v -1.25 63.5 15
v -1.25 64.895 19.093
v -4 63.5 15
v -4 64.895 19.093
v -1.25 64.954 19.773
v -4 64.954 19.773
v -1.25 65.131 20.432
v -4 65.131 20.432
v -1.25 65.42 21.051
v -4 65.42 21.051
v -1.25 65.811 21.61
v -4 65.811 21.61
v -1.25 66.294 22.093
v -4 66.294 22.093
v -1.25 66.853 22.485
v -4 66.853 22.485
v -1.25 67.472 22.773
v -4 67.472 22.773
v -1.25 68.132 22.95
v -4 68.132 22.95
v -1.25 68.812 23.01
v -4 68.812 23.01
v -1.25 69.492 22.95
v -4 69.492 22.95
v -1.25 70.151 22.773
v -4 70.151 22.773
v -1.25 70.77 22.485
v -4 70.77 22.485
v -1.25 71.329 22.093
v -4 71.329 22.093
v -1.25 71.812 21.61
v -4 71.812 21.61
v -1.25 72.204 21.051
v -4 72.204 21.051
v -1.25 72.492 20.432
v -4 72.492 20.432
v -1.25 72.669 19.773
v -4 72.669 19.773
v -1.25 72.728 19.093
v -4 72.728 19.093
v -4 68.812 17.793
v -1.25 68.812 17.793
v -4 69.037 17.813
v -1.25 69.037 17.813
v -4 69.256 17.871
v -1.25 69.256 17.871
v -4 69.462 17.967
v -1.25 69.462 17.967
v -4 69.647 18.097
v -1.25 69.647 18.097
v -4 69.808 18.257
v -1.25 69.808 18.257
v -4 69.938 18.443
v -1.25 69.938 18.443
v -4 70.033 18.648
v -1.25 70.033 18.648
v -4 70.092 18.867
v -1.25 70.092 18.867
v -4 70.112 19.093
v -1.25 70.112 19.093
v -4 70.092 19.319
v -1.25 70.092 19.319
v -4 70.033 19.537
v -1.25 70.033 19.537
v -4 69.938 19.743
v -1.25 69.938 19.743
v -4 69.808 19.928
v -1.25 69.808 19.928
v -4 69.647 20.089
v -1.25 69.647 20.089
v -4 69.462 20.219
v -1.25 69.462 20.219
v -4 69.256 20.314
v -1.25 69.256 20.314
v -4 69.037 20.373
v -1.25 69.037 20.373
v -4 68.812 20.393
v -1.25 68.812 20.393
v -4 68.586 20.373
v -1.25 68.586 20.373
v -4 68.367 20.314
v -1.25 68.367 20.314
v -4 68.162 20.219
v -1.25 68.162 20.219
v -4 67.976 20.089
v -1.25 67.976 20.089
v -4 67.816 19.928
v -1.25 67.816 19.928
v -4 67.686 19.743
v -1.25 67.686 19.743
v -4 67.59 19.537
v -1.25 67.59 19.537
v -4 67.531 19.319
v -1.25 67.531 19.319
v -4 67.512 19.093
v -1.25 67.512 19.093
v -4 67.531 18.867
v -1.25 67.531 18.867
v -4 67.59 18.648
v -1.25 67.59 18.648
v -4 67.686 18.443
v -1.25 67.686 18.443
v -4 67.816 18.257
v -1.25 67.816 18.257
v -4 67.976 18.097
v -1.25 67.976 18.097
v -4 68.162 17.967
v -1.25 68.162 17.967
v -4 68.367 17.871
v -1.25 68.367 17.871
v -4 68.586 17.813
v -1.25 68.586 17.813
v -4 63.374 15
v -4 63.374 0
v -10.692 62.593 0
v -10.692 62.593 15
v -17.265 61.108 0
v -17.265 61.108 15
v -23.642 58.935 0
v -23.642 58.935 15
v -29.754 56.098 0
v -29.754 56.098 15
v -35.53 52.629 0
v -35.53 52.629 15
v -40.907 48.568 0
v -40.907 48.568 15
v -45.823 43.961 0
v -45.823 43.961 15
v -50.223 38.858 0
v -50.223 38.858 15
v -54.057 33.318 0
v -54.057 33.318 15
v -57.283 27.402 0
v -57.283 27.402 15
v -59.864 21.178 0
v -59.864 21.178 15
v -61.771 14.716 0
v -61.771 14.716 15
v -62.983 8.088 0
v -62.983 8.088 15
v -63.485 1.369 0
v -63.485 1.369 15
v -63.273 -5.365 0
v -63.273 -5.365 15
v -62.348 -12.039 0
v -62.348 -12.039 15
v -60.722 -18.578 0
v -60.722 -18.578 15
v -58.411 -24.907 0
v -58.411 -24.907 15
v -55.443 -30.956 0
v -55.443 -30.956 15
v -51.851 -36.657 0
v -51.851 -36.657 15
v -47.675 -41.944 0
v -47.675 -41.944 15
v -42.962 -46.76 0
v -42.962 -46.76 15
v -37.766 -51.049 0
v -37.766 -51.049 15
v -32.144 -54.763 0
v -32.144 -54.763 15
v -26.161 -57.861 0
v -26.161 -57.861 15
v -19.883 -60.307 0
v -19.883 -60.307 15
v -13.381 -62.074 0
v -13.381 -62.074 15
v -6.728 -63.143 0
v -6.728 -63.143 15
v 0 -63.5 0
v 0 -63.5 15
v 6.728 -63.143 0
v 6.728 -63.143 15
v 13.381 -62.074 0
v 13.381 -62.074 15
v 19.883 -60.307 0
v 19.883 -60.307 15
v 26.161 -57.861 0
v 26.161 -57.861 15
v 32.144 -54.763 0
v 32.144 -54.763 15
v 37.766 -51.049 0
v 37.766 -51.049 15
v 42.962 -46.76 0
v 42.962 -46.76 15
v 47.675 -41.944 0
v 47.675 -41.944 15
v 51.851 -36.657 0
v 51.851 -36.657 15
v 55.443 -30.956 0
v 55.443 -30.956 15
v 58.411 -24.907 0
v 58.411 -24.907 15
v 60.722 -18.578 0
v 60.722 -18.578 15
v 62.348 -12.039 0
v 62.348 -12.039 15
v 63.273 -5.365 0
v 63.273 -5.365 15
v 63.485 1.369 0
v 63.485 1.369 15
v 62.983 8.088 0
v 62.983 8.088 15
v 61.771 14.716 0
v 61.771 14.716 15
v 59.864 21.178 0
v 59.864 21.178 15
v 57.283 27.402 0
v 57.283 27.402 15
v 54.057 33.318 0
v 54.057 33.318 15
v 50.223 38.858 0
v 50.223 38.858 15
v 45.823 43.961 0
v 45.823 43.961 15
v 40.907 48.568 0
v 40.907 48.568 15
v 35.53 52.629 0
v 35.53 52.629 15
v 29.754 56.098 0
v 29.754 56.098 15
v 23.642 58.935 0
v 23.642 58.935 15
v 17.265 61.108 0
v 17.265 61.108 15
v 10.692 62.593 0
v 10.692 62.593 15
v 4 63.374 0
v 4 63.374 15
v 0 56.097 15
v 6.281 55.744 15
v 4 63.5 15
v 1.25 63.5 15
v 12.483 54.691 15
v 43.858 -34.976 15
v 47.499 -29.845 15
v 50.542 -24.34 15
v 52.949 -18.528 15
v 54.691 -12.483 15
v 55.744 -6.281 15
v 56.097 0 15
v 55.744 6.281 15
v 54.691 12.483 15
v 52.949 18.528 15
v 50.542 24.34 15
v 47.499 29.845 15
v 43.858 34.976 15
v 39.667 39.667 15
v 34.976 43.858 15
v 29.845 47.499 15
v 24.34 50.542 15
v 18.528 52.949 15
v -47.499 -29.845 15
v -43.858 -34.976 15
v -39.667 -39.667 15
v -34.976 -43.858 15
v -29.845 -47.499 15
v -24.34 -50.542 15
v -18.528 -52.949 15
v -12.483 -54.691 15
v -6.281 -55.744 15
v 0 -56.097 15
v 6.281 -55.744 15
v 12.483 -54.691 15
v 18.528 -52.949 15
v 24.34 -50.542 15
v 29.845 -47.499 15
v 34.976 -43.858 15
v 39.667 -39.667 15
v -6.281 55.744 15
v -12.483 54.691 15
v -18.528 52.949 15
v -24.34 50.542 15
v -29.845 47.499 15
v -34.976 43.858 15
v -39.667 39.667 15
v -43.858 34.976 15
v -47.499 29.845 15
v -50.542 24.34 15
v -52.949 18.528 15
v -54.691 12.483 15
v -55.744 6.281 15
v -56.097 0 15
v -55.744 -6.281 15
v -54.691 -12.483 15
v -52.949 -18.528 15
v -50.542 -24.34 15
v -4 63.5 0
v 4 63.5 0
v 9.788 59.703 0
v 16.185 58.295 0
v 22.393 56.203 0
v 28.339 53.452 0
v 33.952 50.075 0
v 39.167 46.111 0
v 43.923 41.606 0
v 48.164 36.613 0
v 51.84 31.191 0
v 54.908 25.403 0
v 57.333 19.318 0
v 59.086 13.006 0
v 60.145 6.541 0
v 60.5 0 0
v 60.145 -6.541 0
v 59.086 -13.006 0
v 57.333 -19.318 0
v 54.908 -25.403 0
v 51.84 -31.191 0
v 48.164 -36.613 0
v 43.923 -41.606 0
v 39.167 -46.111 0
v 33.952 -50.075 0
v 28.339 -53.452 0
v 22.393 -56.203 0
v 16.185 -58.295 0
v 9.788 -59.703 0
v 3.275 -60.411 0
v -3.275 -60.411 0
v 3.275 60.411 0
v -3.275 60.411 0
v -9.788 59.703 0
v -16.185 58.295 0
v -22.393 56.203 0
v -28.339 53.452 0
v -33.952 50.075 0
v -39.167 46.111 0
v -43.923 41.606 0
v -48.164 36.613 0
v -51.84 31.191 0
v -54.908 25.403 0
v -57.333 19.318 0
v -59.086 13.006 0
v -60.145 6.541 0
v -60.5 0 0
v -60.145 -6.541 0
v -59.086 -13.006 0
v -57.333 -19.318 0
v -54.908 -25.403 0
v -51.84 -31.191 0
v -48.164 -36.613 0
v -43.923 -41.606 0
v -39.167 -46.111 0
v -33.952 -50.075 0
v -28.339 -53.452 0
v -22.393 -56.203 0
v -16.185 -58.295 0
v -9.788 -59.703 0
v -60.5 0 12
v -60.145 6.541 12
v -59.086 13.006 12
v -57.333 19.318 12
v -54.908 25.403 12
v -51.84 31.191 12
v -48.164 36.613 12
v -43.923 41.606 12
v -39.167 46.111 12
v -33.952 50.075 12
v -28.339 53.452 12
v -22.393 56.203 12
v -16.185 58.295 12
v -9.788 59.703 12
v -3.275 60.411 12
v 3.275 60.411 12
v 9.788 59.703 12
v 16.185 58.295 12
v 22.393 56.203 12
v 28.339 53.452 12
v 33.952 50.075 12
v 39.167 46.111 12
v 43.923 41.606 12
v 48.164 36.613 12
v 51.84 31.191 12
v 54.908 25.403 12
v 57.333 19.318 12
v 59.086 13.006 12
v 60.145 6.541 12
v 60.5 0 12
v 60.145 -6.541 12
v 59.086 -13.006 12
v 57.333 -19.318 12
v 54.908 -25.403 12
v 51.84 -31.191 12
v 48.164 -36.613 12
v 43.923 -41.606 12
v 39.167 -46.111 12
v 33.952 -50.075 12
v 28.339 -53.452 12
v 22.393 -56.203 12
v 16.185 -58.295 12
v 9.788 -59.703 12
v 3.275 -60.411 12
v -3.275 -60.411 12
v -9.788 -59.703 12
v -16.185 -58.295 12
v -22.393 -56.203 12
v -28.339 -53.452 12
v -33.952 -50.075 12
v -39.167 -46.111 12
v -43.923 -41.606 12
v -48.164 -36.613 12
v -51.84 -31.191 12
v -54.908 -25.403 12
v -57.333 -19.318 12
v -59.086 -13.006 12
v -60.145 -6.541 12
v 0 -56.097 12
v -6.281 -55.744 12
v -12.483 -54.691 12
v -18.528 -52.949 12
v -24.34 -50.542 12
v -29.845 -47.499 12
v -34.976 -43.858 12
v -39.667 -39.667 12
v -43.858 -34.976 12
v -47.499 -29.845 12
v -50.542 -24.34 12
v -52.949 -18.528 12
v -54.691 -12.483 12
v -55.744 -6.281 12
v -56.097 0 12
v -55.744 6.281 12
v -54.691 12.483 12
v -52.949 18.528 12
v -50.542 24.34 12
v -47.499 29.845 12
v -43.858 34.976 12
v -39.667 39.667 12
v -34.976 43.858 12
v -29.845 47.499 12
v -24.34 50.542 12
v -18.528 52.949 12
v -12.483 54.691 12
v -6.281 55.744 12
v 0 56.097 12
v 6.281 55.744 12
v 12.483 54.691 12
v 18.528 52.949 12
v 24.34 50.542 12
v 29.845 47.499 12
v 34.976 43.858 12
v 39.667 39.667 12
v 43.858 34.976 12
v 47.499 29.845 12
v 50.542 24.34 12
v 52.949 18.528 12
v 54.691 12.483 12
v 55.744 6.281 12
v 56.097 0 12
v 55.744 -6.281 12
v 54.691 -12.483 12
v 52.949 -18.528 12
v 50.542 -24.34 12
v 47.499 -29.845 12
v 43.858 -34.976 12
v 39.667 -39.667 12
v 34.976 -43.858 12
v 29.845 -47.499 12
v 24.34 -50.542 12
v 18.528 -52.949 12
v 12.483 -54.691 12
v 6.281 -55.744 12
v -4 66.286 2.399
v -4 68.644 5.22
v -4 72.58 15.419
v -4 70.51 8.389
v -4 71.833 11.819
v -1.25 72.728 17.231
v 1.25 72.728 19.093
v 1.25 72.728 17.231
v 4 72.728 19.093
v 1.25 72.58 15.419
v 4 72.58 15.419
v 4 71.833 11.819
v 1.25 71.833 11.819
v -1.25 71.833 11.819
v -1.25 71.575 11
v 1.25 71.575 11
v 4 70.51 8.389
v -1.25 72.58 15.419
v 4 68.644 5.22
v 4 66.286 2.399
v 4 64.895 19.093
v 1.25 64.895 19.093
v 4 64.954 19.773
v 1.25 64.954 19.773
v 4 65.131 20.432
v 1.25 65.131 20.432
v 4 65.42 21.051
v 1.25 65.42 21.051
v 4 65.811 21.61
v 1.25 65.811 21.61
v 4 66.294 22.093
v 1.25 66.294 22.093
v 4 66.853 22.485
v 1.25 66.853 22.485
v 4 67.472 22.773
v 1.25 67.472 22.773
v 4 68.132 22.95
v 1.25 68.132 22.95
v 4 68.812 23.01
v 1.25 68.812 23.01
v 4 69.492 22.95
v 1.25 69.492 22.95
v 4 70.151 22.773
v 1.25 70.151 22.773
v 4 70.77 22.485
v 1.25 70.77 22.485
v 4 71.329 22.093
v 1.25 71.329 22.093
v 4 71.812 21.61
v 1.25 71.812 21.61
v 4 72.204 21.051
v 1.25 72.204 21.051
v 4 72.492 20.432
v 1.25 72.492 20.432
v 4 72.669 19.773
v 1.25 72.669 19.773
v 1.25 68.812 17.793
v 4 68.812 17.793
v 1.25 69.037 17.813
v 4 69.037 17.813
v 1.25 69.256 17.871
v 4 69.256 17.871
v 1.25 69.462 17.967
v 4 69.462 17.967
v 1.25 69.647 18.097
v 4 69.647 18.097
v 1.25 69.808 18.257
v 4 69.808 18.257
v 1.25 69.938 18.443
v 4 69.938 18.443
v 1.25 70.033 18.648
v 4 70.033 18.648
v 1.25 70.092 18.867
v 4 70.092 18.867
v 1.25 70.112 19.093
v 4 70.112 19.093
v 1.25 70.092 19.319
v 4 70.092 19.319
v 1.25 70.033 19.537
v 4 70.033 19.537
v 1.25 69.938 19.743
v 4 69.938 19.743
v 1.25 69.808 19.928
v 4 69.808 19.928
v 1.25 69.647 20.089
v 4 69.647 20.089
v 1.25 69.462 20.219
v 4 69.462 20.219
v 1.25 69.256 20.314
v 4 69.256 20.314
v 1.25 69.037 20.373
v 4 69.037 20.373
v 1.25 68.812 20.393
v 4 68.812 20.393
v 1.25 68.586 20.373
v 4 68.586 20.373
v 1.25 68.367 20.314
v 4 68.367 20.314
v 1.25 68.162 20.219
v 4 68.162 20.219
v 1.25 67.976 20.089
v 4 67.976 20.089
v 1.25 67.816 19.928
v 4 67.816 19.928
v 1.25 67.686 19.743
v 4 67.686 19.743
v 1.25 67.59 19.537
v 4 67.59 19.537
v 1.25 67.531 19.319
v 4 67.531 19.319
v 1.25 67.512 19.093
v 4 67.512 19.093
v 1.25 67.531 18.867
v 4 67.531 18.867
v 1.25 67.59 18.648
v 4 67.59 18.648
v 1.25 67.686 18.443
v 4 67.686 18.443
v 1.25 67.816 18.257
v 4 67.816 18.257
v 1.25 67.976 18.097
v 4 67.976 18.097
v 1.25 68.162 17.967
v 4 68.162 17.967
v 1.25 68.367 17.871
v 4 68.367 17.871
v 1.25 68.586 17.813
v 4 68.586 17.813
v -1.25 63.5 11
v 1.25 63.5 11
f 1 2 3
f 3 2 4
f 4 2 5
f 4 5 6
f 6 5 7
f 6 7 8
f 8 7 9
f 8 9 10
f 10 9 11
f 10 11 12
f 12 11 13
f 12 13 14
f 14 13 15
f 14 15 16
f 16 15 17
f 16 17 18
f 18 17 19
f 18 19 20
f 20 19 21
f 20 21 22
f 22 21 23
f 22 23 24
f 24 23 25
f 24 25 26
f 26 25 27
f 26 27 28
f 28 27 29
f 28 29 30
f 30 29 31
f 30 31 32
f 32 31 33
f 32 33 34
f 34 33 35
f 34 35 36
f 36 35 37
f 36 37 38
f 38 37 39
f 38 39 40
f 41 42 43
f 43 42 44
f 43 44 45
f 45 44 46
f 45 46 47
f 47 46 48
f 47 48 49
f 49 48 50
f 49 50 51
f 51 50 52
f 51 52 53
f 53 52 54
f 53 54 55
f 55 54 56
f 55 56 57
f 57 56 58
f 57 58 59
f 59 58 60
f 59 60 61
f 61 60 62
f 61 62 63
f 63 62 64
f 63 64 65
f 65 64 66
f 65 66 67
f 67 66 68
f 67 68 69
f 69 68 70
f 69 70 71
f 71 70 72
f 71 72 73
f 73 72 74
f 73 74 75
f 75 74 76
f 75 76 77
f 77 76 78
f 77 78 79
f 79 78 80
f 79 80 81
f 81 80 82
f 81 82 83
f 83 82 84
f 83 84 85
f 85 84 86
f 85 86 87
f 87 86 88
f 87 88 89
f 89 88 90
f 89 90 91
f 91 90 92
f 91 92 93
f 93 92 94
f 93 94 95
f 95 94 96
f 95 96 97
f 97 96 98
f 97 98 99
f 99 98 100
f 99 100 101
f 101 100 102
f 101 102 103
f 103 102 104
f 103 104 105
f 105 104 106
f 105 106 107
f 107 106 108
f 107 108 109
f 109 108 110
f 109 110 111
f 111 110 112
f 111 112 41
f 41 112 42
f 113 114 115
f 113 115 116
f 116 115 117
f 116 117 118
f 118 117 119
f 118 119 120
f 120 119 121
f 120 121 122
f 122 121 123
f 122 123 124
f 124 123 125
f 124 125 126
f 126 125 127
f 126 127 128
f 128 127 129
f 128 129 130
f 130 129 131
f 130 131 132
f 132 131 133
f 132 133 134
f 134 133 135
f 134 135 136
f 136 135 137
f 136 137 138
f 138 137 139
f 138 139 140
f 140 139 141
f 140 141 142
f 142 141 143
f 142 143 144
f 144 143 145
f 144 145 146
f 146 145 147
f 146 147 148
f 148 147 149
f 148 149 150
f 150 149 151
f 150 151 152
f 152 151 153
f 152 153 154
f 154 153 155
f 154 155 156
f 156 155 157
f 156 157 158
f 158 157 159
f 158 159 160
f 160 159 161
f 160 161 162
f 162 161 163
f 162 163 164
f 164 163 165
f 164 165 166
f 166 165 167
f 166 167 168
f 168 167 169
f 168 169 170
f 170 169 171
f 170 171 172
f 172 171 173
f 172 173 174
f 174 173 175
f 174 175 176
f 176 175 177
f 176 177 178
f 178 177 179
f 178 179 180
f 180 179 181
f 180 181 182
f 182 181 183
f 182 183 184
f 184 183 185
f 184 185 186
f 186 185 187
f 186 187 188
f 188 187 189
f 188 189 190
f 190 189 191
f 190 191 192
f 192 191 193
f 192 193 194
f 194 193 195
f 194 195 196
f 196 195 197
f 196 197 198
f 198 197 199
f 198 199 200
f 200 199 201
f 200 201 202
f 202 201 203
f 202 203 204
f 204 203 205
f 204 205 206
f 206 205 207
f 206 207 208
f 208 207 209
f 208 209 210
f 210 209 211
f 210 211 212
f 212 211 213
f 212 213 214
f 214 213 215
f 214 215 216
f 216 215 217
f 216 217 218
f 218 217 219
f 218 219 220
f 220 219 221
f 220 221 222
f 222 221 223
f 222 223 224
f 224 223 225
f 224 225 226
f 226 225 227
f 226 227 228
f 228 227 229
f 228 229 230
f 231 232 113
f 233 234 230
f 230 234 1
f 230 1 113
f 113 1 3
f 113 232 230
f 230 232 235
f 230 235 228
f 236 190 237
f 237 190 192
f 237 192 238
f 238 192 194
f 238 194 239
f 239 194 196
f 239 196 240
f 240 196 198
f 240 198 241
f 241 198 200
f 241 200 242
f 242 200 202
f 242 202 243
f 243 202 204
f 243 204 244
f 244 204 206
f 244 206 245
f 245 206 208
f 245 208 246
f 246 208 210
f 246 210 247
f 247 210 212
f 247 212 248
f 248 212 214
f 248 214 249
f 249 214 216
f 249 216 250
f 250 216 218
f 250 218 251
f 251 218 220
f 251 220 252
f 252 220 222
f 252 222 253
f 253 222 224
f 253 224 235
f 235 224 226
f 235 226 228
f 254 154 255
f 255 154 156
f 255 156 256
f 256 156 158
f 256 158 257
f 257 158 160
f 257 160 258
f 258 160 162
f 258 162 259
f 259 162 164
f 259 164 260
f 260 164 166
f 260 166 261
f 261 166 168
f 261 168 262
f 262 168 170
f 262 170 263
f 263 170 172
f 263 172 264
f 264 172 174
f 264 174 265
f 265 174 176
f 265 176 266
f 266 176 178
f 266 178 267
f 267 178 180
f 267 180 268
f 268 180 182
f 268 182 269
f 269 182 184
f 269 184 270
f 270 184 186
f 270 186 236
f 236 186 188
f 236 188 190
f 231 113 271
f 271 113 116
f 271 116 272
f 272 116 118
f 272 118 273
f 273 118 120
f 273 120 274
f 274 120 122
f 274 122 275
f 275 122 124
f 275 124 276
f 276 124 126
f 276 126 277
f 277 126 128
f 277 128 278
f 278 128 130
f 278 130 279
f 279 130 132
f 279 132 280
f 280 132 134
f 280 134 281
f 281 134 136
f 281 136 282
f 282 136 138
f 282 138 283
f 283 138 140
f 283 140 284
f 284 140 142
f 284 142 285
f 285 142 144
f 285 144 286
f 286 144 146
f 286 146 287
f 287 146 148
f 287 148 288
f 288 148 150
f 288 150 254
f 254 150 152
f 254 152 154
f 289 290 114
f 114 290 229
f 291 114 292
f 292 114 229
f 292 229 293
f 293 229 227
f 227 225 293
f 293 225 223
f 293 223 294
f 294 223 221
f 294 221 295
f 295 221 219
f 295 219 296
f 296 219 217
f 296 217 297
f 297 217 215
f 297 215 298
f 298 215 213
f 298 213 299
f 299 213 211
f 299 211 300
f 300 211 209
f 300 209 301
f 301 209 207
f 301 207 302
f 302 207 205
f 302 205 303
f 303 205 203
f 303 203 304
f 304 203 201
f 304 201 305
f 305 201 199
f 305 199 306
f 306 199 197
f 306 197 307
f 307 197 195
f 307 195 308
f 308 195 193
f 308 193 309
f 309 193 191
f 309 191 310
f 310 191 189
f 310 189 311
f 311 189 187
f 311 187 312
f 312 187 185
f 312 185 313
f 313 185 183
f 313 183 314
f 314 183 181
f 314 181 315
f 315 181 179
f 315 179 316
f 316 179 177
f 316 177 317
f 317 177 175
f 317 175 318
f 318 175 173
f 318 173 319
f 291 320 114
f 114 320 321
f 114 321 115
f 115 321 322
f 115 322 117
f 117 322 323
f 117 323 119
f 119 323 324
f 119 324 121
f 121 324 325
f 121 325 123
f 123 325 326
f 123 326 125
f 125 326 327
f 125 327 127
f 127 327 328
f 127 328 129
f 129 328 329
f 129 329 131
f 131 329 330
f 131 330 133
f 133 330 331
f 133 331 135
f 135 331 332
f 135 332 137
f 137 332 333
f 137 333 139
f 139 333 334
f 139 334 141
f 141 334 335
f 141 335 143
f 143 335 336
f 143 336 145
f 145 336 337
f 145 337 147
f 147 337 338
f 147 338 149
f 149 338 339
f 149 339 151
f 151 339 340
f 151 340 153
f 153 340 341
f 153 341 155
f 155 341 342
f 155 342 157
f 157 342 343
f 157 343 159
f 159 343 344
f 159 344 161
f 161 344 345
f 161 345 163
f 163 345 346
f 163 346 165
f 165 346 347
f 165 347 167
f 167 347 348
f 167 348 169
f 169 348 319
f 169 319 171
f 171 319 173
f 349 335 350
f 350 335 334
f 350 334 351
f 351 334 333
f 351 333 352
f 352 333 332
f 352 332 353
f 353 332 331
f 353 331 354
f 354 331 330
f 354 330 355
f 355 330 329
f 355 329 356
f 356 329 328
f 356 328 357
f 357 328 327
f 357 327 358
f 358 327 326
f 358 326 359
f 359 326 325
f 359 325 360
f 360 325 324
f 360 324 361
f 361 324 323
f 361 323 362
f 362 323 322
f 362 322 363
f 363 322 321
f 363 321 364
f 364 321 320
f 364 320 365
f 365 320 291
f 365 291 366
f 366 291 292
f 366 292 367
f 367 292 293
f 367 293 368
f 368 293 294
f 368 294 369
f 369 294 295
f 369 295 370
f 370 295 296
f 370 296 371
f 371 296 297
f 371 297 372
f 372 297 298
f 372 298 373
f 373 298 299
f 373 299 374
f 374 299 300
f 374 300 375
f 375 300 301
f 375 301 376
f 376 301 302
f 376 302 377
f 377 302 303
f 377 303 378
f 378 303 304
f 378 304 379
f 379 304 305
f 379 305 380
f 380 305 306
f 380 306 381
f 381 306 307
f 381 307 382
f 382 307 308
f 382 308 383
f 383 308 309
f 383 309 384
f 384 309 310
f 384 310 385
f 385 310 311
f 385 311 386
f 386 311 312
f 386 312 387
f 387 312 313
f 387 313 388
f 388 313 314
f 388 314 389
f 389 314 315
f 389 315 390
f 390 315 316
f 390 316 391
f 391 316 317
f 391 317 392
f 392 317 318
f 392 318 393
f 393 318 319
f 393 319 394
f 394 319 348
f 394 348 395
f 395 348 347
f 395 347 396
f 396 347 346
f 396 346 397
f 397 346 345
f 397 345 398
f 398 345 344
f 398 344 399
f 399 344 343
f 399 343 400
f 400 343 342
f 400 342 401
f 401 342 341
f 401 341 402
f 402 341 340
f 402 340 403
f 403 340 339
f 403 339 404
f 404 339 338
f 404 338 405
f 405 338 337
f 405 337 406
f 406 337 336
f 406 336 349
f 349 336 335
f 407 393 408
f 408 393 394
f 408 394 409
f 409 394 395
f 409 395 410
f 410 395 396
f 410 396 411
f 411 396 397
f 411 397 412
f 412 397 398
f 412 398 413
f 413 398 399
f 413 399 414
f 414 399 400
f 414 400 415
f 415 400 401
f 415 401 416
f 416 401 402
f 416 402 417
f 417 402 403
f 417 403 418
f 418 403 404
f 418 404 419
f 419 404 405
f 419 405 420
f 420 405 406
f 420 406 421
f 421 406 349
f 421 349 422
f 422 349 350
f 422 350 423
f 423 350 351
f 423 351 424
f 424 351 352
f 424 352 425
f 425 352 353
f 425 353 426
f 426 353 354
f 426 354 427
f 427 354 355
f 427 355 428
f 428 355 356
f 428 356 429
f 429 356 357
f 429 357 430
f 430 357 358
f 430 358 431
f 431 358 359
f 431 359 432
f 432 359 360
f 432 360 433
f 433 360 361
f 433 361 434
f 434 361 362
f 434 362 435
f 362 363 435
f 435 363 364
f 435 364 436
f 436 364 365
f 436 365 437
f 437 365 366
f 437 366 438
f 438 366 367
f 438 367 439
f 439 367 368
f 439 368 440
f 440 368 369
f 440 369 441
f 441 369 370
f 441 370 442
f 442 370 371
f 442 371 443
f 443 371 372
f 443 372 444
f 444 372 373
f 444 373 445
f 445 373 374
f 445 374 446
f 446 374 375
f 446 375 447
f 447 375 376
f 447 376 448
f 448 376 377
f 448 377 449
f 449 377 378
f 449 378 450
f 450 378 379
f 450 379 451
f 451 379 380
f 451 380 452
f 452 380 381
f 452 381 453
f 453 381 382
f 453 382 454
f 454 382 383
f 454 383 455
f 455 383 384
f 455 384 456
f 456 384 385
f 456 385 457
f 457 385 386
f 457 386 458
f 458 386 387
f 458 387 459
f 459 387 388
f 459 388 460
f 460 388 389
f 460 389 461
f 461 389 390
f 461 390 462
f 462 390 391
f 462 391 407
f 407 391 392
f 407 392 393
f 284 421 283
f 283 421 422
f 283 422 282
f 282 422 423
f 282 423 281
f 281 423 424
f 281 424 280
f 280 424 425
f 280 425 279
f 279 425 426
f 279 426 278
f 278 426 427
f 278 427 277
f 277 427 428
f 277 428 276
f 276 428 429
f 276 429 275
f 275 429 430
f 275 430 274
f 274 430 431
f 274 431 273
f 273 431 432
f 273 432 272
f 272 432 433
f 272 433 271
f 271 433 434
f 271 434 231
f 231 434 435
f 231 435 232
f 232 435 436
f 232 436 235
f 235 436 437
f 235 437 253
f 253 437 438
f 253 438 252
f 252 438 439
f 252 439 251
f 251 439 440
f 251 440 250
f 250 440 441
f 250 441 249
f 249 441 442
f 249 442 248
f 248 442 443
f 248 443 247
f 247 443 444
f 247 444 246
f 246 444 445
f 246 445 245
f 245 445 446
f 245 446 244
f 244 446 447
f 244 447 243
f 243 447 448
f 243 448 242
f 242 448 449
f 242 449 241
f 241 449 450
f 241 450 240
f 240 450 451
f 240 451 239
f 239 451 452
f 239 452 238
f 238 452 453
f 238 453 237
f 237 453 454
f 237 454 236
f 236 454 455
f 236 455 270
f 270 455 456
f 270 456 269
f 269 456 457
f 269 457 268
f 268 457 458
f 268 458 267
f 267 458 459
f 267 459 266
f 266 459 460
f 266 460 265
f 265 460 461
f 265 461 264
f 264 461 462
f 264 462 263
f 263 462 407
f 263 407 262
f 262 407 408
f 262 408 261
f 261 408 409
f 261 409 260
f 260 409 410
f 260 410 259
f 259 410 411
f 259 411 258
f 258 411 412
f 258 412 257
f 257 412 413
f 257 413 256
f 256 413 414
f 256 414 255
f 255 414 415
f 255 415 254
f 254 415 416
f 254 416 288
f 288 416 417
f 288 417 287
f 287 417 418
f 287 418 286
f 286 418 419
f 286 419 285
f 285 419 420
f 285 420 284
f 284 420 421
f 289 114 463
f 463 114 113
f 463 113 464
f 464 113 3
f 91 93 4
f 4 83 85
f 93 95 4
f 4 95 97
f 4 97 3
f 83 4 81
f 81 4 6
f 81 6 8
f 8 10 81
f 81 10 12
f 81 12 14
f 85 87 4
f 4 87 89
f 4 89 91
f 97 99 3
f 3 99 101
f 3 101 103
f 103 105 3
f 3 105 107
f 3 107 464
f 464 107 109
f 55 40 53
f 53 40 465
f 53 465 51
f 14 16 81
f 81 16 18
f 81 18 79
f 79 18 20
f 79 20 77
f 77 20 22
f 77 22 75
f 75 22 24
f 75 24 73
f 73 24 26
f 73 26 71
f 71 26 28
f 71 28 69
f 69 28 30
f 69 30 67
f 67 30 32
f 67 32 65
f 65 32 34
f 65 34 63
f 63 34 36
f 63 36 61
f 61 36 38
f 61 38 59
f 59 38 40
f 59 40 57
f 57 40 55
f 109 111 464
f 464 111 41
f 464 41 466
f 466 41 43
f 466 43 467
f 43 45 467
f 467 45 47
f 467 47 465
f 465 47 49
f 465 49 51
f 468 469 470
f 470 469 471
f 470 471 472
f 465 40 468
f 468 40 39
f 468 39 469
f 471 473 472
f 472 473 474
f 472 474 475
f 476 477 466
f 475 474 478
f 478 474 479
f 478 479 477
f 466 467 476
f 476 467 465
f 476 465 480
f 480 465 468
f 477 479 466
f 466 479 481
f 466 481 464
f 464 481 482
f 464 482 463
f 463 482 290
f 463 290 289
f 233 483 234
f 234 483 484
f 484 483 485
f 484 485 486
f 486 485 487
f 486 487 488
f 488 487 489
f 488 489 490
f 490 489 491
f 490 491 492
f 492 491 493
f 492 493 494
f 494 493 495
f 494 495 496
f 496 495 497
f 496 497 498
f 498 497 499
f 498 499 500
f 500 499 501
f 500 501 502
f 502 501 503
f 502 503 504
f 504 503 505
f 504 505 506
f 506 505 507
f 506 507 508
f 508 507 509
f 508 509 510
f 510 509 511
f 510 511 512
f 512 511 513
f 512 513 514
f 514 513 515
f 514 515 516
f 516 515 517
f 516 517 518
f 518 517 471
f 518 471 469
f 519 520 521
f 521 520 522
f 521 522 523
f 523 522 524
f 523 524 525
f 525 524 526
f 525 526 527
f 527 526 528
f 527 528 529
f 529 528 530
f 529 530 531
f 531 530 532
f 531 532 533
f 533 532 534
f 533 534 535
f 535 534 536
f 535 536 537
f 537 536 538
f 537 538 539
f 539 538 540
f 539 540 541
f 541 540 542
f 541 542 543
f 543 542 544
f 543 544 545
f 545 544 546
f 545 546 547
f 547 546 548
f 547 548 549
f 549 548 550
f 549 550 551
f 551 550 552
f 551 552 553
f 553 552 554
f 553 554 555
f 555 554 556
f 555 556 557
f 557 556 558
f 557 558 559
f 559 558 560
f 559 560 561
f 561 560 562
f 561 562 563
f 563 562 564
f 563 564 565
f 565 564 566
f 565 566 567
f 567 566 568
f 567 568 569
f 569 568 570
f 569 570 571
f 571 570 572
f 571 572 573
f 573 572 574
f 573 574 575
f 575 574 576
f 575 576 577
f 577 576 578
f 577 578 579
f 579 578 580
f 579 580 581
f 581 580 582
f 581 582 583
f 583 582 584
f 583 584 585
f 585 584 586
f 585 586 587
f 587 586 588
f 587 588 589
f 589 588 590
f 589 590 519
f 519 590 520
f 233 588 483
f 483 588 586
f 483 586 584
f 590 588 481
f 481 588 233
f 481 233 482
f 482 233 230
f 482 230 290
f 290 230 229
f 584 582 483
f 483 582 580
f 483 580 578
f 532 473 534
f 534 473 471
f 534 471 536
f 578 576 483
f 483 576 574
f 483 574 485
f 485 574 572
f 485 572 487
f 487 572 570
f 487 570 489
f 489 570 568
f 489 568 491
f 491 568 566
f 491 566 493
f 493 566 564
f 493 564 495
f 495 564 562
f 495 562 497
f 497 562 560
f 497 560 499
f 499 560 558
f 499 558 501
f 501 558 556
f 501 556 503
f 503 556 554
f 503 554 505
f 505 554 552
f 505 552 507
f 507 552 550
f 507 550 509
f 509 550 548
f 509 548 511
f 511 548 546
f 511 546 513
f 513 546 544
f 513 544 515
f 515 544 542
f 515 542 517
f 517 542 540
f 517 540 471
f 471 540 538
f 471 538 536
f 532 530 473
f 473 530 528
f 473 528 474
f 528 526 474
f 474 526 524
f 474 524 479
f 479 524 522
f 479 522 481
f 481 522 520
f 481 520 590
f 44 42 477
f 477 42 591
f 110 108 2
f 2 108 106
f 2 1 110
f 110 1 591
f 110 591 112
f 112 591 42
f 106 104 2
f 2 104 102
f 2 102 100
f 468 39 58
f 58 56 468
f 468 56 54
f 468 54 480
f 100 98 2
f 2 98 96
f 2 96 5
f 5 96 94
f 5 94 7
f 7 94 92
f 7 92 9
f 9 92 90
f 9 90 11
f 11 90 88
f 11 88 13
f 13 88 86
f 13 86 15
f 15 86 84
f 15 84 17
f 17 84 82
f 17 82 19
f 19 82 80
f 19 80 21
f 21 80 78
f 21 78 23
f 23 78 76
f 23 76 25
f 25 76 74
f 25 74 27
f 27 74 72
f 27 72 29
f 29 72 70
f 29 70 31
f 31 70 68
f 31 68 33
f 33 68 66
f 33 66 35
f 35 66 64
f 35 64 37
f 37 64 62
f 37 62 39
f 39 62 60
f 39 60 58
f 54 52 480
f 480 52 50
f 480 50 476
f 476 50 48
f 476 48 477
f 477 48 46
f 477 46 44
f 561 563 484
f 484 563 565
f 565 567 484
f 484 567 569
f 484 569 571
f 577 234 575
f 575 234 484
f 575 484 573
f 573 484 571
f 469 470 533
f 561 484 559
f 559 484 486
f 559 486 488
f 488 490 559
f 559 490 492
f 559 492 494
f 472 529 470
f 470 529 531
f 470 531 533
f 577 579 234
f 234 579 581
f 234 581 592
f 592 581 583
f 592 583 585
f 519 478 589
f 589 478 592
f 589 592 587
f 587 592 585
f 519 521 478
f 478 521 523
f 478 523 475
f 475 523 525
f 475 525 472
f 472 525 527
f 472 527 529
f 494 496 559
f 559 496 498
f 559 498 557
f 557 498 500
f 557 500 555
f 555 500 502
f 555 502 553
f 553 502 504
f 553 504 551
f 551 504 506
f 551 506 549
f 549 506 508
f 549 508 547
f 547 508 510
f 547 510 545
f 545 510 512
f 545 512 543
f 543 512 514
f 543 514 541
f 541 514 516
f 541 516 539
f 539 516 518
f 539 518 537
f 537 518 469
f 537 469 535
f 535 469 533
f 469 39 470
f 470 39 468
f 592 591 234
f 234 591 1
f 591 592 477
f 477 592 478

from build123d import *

# Parameters (mm, degrees)
SKETCH1_R                = 63.5
BOSS_EXTRUDE2_DEPTH      = 15
SHELL4_T                 = -3
SKETCH4_R                = 56.09702957
CUT_EXTRUDE1_DEPTH       = 22
BOSS_EXTRUDE6_DEPTH      = 4
BOSS_EXTRUDE6_DEPTH_BACK = 4
SKETCH8_R                = 1.3
BOSS_EXTRUDE7_REACH      = 145.843
BOSS_EXTRUDE7_END_RADIUS = 63.5
SKETCH9_W                = 8
SKETCH9_H                = 15
CUT_EXTRUDE2_DEPTH       = 9
CUT_EXTRUDE2_DEPTH_BACK  = 4
SKETCH10_W               = 2.5
SKETCH10_H               = 9.228481295


with BuildPart() as part:
    # Sketch1 → Boss-Extrude2 (new body)
    with BuildSketch(Plane.XY):
        Circle(SKETCH1_R)
    extrude(amount=BOSS_EXTRUDE2_DEPTH)

    # Shell4
    shell4_openings = [part.faces().sort_by_distance(p)[0] for p in [
        (0, 0, 0),
    ]]
    offset(amount=SHELL4_T, openings=shell4_openings, kind=Kind.INTERSECTION)

    # Sketch4 → Cut-Extrude1 (cut)
    with BuildSketch(Plane(origin=(0, 0, 12), x_dir=(-1, 0, 0), z_dir=(0, 0, -1))):
        Circle(SKETCH4_R)
    extrude(amount=-CUT_EXTRUDE1_DEPTH, mode=Mode.SUBTRACT)



with BuildPart() as body_2:
    # Sketch8 → Boss-Extrude6 (new, two sides: drawn at the far end of the back side and taken through both)
    with BuildSketch(Plane(origin=(0, 0, 0), x_dir=(0, 0, -1), z_dir=(1, 0, 0)).offset(-BOSS_EXTRUDE6_DEPTH_BACK)):
        with BuildLine():
            Line((-15, 63.5), (0, 63.5))
            ThreePointArc((0, 63.5), (-8.388517362, 70.509736152), (-19.092759253, 72.728481295))
            ThreePointArc((-19.092759253, 72.728481295), (-23.009560108, 68.811680441), (-19.092759253, 64.894879586))
            ThreePointArc((-19.092759253, 64.894879586), (-17.050704692, 64.184749485), (-15, 63.5))
        make_face()
        with Locations((-19.092759253, 68.811680441)):
            Circle(SKETCH8_R, mode=Mode.SUBTRACT)
    extrude(amount=BOSS_EXTRUDE6_DEPTH + BOSS_EXTRUDE6_DEPTH_BACK)


with BuildPart() as part_1:
    add(part.part)

    add(body_2.part)  # Boss-Extrude7 merges body 2
    # Boss-Extrude7: up to this cylinder (the profile starts outside it)
    boss_extrude7_end = Plane(origin=(0, 0, 7.5), z_dir=(0, 0, -1)) * Cylinder(BOSS_EXTRUDE7_END_RADIUS, 419.686, mode=Mode.PRIVATE)
    # Sketch9 → Boss-Extrude7 (add, up to the surface)
    with BuildSketch(Plane.XZ.offset(-63.5), mode=Mode.PRIVATE) as boss_extrude7_sk1:
        with Locations((0, 7.5)):
            Rectangle(SKETCH9_W, SKETCH9_H)
    boss_extrude7_tool1 = extrude(boss_extrude7_sk1.sketch, amount=BOSS_EXTRUDE7_REACH, mode=Mode.PRIVATE) - boss_extrude7_end
    add(boss_extrude7_tool1.solids().sort_by_distance((0, 63.5, 7.5))[0])
    add(boss_extrude7_tool1.solids().sort_by_distance((0, 63.5, 7.5))[1])

    # Sketch10 → Cut-Extrude2 (cut, two sides: drawn at the far end of the back side and taken through both)
    with BuildSketch(Plane.XY.offset(15).offset(-CUT_EXTRUDE2_DEPTH_BACK)):
        with Locations((0, 68.114240648)):
            Rectangle(SKETCH10_W, SKETCH10_H)
    extrude(amount=CUT_EXTRUDE2_DEPTH + CUT_EXTRUDE2_DEPTH_BACK, mode=Mode.SUBTRACT)


solid = part_1.part
